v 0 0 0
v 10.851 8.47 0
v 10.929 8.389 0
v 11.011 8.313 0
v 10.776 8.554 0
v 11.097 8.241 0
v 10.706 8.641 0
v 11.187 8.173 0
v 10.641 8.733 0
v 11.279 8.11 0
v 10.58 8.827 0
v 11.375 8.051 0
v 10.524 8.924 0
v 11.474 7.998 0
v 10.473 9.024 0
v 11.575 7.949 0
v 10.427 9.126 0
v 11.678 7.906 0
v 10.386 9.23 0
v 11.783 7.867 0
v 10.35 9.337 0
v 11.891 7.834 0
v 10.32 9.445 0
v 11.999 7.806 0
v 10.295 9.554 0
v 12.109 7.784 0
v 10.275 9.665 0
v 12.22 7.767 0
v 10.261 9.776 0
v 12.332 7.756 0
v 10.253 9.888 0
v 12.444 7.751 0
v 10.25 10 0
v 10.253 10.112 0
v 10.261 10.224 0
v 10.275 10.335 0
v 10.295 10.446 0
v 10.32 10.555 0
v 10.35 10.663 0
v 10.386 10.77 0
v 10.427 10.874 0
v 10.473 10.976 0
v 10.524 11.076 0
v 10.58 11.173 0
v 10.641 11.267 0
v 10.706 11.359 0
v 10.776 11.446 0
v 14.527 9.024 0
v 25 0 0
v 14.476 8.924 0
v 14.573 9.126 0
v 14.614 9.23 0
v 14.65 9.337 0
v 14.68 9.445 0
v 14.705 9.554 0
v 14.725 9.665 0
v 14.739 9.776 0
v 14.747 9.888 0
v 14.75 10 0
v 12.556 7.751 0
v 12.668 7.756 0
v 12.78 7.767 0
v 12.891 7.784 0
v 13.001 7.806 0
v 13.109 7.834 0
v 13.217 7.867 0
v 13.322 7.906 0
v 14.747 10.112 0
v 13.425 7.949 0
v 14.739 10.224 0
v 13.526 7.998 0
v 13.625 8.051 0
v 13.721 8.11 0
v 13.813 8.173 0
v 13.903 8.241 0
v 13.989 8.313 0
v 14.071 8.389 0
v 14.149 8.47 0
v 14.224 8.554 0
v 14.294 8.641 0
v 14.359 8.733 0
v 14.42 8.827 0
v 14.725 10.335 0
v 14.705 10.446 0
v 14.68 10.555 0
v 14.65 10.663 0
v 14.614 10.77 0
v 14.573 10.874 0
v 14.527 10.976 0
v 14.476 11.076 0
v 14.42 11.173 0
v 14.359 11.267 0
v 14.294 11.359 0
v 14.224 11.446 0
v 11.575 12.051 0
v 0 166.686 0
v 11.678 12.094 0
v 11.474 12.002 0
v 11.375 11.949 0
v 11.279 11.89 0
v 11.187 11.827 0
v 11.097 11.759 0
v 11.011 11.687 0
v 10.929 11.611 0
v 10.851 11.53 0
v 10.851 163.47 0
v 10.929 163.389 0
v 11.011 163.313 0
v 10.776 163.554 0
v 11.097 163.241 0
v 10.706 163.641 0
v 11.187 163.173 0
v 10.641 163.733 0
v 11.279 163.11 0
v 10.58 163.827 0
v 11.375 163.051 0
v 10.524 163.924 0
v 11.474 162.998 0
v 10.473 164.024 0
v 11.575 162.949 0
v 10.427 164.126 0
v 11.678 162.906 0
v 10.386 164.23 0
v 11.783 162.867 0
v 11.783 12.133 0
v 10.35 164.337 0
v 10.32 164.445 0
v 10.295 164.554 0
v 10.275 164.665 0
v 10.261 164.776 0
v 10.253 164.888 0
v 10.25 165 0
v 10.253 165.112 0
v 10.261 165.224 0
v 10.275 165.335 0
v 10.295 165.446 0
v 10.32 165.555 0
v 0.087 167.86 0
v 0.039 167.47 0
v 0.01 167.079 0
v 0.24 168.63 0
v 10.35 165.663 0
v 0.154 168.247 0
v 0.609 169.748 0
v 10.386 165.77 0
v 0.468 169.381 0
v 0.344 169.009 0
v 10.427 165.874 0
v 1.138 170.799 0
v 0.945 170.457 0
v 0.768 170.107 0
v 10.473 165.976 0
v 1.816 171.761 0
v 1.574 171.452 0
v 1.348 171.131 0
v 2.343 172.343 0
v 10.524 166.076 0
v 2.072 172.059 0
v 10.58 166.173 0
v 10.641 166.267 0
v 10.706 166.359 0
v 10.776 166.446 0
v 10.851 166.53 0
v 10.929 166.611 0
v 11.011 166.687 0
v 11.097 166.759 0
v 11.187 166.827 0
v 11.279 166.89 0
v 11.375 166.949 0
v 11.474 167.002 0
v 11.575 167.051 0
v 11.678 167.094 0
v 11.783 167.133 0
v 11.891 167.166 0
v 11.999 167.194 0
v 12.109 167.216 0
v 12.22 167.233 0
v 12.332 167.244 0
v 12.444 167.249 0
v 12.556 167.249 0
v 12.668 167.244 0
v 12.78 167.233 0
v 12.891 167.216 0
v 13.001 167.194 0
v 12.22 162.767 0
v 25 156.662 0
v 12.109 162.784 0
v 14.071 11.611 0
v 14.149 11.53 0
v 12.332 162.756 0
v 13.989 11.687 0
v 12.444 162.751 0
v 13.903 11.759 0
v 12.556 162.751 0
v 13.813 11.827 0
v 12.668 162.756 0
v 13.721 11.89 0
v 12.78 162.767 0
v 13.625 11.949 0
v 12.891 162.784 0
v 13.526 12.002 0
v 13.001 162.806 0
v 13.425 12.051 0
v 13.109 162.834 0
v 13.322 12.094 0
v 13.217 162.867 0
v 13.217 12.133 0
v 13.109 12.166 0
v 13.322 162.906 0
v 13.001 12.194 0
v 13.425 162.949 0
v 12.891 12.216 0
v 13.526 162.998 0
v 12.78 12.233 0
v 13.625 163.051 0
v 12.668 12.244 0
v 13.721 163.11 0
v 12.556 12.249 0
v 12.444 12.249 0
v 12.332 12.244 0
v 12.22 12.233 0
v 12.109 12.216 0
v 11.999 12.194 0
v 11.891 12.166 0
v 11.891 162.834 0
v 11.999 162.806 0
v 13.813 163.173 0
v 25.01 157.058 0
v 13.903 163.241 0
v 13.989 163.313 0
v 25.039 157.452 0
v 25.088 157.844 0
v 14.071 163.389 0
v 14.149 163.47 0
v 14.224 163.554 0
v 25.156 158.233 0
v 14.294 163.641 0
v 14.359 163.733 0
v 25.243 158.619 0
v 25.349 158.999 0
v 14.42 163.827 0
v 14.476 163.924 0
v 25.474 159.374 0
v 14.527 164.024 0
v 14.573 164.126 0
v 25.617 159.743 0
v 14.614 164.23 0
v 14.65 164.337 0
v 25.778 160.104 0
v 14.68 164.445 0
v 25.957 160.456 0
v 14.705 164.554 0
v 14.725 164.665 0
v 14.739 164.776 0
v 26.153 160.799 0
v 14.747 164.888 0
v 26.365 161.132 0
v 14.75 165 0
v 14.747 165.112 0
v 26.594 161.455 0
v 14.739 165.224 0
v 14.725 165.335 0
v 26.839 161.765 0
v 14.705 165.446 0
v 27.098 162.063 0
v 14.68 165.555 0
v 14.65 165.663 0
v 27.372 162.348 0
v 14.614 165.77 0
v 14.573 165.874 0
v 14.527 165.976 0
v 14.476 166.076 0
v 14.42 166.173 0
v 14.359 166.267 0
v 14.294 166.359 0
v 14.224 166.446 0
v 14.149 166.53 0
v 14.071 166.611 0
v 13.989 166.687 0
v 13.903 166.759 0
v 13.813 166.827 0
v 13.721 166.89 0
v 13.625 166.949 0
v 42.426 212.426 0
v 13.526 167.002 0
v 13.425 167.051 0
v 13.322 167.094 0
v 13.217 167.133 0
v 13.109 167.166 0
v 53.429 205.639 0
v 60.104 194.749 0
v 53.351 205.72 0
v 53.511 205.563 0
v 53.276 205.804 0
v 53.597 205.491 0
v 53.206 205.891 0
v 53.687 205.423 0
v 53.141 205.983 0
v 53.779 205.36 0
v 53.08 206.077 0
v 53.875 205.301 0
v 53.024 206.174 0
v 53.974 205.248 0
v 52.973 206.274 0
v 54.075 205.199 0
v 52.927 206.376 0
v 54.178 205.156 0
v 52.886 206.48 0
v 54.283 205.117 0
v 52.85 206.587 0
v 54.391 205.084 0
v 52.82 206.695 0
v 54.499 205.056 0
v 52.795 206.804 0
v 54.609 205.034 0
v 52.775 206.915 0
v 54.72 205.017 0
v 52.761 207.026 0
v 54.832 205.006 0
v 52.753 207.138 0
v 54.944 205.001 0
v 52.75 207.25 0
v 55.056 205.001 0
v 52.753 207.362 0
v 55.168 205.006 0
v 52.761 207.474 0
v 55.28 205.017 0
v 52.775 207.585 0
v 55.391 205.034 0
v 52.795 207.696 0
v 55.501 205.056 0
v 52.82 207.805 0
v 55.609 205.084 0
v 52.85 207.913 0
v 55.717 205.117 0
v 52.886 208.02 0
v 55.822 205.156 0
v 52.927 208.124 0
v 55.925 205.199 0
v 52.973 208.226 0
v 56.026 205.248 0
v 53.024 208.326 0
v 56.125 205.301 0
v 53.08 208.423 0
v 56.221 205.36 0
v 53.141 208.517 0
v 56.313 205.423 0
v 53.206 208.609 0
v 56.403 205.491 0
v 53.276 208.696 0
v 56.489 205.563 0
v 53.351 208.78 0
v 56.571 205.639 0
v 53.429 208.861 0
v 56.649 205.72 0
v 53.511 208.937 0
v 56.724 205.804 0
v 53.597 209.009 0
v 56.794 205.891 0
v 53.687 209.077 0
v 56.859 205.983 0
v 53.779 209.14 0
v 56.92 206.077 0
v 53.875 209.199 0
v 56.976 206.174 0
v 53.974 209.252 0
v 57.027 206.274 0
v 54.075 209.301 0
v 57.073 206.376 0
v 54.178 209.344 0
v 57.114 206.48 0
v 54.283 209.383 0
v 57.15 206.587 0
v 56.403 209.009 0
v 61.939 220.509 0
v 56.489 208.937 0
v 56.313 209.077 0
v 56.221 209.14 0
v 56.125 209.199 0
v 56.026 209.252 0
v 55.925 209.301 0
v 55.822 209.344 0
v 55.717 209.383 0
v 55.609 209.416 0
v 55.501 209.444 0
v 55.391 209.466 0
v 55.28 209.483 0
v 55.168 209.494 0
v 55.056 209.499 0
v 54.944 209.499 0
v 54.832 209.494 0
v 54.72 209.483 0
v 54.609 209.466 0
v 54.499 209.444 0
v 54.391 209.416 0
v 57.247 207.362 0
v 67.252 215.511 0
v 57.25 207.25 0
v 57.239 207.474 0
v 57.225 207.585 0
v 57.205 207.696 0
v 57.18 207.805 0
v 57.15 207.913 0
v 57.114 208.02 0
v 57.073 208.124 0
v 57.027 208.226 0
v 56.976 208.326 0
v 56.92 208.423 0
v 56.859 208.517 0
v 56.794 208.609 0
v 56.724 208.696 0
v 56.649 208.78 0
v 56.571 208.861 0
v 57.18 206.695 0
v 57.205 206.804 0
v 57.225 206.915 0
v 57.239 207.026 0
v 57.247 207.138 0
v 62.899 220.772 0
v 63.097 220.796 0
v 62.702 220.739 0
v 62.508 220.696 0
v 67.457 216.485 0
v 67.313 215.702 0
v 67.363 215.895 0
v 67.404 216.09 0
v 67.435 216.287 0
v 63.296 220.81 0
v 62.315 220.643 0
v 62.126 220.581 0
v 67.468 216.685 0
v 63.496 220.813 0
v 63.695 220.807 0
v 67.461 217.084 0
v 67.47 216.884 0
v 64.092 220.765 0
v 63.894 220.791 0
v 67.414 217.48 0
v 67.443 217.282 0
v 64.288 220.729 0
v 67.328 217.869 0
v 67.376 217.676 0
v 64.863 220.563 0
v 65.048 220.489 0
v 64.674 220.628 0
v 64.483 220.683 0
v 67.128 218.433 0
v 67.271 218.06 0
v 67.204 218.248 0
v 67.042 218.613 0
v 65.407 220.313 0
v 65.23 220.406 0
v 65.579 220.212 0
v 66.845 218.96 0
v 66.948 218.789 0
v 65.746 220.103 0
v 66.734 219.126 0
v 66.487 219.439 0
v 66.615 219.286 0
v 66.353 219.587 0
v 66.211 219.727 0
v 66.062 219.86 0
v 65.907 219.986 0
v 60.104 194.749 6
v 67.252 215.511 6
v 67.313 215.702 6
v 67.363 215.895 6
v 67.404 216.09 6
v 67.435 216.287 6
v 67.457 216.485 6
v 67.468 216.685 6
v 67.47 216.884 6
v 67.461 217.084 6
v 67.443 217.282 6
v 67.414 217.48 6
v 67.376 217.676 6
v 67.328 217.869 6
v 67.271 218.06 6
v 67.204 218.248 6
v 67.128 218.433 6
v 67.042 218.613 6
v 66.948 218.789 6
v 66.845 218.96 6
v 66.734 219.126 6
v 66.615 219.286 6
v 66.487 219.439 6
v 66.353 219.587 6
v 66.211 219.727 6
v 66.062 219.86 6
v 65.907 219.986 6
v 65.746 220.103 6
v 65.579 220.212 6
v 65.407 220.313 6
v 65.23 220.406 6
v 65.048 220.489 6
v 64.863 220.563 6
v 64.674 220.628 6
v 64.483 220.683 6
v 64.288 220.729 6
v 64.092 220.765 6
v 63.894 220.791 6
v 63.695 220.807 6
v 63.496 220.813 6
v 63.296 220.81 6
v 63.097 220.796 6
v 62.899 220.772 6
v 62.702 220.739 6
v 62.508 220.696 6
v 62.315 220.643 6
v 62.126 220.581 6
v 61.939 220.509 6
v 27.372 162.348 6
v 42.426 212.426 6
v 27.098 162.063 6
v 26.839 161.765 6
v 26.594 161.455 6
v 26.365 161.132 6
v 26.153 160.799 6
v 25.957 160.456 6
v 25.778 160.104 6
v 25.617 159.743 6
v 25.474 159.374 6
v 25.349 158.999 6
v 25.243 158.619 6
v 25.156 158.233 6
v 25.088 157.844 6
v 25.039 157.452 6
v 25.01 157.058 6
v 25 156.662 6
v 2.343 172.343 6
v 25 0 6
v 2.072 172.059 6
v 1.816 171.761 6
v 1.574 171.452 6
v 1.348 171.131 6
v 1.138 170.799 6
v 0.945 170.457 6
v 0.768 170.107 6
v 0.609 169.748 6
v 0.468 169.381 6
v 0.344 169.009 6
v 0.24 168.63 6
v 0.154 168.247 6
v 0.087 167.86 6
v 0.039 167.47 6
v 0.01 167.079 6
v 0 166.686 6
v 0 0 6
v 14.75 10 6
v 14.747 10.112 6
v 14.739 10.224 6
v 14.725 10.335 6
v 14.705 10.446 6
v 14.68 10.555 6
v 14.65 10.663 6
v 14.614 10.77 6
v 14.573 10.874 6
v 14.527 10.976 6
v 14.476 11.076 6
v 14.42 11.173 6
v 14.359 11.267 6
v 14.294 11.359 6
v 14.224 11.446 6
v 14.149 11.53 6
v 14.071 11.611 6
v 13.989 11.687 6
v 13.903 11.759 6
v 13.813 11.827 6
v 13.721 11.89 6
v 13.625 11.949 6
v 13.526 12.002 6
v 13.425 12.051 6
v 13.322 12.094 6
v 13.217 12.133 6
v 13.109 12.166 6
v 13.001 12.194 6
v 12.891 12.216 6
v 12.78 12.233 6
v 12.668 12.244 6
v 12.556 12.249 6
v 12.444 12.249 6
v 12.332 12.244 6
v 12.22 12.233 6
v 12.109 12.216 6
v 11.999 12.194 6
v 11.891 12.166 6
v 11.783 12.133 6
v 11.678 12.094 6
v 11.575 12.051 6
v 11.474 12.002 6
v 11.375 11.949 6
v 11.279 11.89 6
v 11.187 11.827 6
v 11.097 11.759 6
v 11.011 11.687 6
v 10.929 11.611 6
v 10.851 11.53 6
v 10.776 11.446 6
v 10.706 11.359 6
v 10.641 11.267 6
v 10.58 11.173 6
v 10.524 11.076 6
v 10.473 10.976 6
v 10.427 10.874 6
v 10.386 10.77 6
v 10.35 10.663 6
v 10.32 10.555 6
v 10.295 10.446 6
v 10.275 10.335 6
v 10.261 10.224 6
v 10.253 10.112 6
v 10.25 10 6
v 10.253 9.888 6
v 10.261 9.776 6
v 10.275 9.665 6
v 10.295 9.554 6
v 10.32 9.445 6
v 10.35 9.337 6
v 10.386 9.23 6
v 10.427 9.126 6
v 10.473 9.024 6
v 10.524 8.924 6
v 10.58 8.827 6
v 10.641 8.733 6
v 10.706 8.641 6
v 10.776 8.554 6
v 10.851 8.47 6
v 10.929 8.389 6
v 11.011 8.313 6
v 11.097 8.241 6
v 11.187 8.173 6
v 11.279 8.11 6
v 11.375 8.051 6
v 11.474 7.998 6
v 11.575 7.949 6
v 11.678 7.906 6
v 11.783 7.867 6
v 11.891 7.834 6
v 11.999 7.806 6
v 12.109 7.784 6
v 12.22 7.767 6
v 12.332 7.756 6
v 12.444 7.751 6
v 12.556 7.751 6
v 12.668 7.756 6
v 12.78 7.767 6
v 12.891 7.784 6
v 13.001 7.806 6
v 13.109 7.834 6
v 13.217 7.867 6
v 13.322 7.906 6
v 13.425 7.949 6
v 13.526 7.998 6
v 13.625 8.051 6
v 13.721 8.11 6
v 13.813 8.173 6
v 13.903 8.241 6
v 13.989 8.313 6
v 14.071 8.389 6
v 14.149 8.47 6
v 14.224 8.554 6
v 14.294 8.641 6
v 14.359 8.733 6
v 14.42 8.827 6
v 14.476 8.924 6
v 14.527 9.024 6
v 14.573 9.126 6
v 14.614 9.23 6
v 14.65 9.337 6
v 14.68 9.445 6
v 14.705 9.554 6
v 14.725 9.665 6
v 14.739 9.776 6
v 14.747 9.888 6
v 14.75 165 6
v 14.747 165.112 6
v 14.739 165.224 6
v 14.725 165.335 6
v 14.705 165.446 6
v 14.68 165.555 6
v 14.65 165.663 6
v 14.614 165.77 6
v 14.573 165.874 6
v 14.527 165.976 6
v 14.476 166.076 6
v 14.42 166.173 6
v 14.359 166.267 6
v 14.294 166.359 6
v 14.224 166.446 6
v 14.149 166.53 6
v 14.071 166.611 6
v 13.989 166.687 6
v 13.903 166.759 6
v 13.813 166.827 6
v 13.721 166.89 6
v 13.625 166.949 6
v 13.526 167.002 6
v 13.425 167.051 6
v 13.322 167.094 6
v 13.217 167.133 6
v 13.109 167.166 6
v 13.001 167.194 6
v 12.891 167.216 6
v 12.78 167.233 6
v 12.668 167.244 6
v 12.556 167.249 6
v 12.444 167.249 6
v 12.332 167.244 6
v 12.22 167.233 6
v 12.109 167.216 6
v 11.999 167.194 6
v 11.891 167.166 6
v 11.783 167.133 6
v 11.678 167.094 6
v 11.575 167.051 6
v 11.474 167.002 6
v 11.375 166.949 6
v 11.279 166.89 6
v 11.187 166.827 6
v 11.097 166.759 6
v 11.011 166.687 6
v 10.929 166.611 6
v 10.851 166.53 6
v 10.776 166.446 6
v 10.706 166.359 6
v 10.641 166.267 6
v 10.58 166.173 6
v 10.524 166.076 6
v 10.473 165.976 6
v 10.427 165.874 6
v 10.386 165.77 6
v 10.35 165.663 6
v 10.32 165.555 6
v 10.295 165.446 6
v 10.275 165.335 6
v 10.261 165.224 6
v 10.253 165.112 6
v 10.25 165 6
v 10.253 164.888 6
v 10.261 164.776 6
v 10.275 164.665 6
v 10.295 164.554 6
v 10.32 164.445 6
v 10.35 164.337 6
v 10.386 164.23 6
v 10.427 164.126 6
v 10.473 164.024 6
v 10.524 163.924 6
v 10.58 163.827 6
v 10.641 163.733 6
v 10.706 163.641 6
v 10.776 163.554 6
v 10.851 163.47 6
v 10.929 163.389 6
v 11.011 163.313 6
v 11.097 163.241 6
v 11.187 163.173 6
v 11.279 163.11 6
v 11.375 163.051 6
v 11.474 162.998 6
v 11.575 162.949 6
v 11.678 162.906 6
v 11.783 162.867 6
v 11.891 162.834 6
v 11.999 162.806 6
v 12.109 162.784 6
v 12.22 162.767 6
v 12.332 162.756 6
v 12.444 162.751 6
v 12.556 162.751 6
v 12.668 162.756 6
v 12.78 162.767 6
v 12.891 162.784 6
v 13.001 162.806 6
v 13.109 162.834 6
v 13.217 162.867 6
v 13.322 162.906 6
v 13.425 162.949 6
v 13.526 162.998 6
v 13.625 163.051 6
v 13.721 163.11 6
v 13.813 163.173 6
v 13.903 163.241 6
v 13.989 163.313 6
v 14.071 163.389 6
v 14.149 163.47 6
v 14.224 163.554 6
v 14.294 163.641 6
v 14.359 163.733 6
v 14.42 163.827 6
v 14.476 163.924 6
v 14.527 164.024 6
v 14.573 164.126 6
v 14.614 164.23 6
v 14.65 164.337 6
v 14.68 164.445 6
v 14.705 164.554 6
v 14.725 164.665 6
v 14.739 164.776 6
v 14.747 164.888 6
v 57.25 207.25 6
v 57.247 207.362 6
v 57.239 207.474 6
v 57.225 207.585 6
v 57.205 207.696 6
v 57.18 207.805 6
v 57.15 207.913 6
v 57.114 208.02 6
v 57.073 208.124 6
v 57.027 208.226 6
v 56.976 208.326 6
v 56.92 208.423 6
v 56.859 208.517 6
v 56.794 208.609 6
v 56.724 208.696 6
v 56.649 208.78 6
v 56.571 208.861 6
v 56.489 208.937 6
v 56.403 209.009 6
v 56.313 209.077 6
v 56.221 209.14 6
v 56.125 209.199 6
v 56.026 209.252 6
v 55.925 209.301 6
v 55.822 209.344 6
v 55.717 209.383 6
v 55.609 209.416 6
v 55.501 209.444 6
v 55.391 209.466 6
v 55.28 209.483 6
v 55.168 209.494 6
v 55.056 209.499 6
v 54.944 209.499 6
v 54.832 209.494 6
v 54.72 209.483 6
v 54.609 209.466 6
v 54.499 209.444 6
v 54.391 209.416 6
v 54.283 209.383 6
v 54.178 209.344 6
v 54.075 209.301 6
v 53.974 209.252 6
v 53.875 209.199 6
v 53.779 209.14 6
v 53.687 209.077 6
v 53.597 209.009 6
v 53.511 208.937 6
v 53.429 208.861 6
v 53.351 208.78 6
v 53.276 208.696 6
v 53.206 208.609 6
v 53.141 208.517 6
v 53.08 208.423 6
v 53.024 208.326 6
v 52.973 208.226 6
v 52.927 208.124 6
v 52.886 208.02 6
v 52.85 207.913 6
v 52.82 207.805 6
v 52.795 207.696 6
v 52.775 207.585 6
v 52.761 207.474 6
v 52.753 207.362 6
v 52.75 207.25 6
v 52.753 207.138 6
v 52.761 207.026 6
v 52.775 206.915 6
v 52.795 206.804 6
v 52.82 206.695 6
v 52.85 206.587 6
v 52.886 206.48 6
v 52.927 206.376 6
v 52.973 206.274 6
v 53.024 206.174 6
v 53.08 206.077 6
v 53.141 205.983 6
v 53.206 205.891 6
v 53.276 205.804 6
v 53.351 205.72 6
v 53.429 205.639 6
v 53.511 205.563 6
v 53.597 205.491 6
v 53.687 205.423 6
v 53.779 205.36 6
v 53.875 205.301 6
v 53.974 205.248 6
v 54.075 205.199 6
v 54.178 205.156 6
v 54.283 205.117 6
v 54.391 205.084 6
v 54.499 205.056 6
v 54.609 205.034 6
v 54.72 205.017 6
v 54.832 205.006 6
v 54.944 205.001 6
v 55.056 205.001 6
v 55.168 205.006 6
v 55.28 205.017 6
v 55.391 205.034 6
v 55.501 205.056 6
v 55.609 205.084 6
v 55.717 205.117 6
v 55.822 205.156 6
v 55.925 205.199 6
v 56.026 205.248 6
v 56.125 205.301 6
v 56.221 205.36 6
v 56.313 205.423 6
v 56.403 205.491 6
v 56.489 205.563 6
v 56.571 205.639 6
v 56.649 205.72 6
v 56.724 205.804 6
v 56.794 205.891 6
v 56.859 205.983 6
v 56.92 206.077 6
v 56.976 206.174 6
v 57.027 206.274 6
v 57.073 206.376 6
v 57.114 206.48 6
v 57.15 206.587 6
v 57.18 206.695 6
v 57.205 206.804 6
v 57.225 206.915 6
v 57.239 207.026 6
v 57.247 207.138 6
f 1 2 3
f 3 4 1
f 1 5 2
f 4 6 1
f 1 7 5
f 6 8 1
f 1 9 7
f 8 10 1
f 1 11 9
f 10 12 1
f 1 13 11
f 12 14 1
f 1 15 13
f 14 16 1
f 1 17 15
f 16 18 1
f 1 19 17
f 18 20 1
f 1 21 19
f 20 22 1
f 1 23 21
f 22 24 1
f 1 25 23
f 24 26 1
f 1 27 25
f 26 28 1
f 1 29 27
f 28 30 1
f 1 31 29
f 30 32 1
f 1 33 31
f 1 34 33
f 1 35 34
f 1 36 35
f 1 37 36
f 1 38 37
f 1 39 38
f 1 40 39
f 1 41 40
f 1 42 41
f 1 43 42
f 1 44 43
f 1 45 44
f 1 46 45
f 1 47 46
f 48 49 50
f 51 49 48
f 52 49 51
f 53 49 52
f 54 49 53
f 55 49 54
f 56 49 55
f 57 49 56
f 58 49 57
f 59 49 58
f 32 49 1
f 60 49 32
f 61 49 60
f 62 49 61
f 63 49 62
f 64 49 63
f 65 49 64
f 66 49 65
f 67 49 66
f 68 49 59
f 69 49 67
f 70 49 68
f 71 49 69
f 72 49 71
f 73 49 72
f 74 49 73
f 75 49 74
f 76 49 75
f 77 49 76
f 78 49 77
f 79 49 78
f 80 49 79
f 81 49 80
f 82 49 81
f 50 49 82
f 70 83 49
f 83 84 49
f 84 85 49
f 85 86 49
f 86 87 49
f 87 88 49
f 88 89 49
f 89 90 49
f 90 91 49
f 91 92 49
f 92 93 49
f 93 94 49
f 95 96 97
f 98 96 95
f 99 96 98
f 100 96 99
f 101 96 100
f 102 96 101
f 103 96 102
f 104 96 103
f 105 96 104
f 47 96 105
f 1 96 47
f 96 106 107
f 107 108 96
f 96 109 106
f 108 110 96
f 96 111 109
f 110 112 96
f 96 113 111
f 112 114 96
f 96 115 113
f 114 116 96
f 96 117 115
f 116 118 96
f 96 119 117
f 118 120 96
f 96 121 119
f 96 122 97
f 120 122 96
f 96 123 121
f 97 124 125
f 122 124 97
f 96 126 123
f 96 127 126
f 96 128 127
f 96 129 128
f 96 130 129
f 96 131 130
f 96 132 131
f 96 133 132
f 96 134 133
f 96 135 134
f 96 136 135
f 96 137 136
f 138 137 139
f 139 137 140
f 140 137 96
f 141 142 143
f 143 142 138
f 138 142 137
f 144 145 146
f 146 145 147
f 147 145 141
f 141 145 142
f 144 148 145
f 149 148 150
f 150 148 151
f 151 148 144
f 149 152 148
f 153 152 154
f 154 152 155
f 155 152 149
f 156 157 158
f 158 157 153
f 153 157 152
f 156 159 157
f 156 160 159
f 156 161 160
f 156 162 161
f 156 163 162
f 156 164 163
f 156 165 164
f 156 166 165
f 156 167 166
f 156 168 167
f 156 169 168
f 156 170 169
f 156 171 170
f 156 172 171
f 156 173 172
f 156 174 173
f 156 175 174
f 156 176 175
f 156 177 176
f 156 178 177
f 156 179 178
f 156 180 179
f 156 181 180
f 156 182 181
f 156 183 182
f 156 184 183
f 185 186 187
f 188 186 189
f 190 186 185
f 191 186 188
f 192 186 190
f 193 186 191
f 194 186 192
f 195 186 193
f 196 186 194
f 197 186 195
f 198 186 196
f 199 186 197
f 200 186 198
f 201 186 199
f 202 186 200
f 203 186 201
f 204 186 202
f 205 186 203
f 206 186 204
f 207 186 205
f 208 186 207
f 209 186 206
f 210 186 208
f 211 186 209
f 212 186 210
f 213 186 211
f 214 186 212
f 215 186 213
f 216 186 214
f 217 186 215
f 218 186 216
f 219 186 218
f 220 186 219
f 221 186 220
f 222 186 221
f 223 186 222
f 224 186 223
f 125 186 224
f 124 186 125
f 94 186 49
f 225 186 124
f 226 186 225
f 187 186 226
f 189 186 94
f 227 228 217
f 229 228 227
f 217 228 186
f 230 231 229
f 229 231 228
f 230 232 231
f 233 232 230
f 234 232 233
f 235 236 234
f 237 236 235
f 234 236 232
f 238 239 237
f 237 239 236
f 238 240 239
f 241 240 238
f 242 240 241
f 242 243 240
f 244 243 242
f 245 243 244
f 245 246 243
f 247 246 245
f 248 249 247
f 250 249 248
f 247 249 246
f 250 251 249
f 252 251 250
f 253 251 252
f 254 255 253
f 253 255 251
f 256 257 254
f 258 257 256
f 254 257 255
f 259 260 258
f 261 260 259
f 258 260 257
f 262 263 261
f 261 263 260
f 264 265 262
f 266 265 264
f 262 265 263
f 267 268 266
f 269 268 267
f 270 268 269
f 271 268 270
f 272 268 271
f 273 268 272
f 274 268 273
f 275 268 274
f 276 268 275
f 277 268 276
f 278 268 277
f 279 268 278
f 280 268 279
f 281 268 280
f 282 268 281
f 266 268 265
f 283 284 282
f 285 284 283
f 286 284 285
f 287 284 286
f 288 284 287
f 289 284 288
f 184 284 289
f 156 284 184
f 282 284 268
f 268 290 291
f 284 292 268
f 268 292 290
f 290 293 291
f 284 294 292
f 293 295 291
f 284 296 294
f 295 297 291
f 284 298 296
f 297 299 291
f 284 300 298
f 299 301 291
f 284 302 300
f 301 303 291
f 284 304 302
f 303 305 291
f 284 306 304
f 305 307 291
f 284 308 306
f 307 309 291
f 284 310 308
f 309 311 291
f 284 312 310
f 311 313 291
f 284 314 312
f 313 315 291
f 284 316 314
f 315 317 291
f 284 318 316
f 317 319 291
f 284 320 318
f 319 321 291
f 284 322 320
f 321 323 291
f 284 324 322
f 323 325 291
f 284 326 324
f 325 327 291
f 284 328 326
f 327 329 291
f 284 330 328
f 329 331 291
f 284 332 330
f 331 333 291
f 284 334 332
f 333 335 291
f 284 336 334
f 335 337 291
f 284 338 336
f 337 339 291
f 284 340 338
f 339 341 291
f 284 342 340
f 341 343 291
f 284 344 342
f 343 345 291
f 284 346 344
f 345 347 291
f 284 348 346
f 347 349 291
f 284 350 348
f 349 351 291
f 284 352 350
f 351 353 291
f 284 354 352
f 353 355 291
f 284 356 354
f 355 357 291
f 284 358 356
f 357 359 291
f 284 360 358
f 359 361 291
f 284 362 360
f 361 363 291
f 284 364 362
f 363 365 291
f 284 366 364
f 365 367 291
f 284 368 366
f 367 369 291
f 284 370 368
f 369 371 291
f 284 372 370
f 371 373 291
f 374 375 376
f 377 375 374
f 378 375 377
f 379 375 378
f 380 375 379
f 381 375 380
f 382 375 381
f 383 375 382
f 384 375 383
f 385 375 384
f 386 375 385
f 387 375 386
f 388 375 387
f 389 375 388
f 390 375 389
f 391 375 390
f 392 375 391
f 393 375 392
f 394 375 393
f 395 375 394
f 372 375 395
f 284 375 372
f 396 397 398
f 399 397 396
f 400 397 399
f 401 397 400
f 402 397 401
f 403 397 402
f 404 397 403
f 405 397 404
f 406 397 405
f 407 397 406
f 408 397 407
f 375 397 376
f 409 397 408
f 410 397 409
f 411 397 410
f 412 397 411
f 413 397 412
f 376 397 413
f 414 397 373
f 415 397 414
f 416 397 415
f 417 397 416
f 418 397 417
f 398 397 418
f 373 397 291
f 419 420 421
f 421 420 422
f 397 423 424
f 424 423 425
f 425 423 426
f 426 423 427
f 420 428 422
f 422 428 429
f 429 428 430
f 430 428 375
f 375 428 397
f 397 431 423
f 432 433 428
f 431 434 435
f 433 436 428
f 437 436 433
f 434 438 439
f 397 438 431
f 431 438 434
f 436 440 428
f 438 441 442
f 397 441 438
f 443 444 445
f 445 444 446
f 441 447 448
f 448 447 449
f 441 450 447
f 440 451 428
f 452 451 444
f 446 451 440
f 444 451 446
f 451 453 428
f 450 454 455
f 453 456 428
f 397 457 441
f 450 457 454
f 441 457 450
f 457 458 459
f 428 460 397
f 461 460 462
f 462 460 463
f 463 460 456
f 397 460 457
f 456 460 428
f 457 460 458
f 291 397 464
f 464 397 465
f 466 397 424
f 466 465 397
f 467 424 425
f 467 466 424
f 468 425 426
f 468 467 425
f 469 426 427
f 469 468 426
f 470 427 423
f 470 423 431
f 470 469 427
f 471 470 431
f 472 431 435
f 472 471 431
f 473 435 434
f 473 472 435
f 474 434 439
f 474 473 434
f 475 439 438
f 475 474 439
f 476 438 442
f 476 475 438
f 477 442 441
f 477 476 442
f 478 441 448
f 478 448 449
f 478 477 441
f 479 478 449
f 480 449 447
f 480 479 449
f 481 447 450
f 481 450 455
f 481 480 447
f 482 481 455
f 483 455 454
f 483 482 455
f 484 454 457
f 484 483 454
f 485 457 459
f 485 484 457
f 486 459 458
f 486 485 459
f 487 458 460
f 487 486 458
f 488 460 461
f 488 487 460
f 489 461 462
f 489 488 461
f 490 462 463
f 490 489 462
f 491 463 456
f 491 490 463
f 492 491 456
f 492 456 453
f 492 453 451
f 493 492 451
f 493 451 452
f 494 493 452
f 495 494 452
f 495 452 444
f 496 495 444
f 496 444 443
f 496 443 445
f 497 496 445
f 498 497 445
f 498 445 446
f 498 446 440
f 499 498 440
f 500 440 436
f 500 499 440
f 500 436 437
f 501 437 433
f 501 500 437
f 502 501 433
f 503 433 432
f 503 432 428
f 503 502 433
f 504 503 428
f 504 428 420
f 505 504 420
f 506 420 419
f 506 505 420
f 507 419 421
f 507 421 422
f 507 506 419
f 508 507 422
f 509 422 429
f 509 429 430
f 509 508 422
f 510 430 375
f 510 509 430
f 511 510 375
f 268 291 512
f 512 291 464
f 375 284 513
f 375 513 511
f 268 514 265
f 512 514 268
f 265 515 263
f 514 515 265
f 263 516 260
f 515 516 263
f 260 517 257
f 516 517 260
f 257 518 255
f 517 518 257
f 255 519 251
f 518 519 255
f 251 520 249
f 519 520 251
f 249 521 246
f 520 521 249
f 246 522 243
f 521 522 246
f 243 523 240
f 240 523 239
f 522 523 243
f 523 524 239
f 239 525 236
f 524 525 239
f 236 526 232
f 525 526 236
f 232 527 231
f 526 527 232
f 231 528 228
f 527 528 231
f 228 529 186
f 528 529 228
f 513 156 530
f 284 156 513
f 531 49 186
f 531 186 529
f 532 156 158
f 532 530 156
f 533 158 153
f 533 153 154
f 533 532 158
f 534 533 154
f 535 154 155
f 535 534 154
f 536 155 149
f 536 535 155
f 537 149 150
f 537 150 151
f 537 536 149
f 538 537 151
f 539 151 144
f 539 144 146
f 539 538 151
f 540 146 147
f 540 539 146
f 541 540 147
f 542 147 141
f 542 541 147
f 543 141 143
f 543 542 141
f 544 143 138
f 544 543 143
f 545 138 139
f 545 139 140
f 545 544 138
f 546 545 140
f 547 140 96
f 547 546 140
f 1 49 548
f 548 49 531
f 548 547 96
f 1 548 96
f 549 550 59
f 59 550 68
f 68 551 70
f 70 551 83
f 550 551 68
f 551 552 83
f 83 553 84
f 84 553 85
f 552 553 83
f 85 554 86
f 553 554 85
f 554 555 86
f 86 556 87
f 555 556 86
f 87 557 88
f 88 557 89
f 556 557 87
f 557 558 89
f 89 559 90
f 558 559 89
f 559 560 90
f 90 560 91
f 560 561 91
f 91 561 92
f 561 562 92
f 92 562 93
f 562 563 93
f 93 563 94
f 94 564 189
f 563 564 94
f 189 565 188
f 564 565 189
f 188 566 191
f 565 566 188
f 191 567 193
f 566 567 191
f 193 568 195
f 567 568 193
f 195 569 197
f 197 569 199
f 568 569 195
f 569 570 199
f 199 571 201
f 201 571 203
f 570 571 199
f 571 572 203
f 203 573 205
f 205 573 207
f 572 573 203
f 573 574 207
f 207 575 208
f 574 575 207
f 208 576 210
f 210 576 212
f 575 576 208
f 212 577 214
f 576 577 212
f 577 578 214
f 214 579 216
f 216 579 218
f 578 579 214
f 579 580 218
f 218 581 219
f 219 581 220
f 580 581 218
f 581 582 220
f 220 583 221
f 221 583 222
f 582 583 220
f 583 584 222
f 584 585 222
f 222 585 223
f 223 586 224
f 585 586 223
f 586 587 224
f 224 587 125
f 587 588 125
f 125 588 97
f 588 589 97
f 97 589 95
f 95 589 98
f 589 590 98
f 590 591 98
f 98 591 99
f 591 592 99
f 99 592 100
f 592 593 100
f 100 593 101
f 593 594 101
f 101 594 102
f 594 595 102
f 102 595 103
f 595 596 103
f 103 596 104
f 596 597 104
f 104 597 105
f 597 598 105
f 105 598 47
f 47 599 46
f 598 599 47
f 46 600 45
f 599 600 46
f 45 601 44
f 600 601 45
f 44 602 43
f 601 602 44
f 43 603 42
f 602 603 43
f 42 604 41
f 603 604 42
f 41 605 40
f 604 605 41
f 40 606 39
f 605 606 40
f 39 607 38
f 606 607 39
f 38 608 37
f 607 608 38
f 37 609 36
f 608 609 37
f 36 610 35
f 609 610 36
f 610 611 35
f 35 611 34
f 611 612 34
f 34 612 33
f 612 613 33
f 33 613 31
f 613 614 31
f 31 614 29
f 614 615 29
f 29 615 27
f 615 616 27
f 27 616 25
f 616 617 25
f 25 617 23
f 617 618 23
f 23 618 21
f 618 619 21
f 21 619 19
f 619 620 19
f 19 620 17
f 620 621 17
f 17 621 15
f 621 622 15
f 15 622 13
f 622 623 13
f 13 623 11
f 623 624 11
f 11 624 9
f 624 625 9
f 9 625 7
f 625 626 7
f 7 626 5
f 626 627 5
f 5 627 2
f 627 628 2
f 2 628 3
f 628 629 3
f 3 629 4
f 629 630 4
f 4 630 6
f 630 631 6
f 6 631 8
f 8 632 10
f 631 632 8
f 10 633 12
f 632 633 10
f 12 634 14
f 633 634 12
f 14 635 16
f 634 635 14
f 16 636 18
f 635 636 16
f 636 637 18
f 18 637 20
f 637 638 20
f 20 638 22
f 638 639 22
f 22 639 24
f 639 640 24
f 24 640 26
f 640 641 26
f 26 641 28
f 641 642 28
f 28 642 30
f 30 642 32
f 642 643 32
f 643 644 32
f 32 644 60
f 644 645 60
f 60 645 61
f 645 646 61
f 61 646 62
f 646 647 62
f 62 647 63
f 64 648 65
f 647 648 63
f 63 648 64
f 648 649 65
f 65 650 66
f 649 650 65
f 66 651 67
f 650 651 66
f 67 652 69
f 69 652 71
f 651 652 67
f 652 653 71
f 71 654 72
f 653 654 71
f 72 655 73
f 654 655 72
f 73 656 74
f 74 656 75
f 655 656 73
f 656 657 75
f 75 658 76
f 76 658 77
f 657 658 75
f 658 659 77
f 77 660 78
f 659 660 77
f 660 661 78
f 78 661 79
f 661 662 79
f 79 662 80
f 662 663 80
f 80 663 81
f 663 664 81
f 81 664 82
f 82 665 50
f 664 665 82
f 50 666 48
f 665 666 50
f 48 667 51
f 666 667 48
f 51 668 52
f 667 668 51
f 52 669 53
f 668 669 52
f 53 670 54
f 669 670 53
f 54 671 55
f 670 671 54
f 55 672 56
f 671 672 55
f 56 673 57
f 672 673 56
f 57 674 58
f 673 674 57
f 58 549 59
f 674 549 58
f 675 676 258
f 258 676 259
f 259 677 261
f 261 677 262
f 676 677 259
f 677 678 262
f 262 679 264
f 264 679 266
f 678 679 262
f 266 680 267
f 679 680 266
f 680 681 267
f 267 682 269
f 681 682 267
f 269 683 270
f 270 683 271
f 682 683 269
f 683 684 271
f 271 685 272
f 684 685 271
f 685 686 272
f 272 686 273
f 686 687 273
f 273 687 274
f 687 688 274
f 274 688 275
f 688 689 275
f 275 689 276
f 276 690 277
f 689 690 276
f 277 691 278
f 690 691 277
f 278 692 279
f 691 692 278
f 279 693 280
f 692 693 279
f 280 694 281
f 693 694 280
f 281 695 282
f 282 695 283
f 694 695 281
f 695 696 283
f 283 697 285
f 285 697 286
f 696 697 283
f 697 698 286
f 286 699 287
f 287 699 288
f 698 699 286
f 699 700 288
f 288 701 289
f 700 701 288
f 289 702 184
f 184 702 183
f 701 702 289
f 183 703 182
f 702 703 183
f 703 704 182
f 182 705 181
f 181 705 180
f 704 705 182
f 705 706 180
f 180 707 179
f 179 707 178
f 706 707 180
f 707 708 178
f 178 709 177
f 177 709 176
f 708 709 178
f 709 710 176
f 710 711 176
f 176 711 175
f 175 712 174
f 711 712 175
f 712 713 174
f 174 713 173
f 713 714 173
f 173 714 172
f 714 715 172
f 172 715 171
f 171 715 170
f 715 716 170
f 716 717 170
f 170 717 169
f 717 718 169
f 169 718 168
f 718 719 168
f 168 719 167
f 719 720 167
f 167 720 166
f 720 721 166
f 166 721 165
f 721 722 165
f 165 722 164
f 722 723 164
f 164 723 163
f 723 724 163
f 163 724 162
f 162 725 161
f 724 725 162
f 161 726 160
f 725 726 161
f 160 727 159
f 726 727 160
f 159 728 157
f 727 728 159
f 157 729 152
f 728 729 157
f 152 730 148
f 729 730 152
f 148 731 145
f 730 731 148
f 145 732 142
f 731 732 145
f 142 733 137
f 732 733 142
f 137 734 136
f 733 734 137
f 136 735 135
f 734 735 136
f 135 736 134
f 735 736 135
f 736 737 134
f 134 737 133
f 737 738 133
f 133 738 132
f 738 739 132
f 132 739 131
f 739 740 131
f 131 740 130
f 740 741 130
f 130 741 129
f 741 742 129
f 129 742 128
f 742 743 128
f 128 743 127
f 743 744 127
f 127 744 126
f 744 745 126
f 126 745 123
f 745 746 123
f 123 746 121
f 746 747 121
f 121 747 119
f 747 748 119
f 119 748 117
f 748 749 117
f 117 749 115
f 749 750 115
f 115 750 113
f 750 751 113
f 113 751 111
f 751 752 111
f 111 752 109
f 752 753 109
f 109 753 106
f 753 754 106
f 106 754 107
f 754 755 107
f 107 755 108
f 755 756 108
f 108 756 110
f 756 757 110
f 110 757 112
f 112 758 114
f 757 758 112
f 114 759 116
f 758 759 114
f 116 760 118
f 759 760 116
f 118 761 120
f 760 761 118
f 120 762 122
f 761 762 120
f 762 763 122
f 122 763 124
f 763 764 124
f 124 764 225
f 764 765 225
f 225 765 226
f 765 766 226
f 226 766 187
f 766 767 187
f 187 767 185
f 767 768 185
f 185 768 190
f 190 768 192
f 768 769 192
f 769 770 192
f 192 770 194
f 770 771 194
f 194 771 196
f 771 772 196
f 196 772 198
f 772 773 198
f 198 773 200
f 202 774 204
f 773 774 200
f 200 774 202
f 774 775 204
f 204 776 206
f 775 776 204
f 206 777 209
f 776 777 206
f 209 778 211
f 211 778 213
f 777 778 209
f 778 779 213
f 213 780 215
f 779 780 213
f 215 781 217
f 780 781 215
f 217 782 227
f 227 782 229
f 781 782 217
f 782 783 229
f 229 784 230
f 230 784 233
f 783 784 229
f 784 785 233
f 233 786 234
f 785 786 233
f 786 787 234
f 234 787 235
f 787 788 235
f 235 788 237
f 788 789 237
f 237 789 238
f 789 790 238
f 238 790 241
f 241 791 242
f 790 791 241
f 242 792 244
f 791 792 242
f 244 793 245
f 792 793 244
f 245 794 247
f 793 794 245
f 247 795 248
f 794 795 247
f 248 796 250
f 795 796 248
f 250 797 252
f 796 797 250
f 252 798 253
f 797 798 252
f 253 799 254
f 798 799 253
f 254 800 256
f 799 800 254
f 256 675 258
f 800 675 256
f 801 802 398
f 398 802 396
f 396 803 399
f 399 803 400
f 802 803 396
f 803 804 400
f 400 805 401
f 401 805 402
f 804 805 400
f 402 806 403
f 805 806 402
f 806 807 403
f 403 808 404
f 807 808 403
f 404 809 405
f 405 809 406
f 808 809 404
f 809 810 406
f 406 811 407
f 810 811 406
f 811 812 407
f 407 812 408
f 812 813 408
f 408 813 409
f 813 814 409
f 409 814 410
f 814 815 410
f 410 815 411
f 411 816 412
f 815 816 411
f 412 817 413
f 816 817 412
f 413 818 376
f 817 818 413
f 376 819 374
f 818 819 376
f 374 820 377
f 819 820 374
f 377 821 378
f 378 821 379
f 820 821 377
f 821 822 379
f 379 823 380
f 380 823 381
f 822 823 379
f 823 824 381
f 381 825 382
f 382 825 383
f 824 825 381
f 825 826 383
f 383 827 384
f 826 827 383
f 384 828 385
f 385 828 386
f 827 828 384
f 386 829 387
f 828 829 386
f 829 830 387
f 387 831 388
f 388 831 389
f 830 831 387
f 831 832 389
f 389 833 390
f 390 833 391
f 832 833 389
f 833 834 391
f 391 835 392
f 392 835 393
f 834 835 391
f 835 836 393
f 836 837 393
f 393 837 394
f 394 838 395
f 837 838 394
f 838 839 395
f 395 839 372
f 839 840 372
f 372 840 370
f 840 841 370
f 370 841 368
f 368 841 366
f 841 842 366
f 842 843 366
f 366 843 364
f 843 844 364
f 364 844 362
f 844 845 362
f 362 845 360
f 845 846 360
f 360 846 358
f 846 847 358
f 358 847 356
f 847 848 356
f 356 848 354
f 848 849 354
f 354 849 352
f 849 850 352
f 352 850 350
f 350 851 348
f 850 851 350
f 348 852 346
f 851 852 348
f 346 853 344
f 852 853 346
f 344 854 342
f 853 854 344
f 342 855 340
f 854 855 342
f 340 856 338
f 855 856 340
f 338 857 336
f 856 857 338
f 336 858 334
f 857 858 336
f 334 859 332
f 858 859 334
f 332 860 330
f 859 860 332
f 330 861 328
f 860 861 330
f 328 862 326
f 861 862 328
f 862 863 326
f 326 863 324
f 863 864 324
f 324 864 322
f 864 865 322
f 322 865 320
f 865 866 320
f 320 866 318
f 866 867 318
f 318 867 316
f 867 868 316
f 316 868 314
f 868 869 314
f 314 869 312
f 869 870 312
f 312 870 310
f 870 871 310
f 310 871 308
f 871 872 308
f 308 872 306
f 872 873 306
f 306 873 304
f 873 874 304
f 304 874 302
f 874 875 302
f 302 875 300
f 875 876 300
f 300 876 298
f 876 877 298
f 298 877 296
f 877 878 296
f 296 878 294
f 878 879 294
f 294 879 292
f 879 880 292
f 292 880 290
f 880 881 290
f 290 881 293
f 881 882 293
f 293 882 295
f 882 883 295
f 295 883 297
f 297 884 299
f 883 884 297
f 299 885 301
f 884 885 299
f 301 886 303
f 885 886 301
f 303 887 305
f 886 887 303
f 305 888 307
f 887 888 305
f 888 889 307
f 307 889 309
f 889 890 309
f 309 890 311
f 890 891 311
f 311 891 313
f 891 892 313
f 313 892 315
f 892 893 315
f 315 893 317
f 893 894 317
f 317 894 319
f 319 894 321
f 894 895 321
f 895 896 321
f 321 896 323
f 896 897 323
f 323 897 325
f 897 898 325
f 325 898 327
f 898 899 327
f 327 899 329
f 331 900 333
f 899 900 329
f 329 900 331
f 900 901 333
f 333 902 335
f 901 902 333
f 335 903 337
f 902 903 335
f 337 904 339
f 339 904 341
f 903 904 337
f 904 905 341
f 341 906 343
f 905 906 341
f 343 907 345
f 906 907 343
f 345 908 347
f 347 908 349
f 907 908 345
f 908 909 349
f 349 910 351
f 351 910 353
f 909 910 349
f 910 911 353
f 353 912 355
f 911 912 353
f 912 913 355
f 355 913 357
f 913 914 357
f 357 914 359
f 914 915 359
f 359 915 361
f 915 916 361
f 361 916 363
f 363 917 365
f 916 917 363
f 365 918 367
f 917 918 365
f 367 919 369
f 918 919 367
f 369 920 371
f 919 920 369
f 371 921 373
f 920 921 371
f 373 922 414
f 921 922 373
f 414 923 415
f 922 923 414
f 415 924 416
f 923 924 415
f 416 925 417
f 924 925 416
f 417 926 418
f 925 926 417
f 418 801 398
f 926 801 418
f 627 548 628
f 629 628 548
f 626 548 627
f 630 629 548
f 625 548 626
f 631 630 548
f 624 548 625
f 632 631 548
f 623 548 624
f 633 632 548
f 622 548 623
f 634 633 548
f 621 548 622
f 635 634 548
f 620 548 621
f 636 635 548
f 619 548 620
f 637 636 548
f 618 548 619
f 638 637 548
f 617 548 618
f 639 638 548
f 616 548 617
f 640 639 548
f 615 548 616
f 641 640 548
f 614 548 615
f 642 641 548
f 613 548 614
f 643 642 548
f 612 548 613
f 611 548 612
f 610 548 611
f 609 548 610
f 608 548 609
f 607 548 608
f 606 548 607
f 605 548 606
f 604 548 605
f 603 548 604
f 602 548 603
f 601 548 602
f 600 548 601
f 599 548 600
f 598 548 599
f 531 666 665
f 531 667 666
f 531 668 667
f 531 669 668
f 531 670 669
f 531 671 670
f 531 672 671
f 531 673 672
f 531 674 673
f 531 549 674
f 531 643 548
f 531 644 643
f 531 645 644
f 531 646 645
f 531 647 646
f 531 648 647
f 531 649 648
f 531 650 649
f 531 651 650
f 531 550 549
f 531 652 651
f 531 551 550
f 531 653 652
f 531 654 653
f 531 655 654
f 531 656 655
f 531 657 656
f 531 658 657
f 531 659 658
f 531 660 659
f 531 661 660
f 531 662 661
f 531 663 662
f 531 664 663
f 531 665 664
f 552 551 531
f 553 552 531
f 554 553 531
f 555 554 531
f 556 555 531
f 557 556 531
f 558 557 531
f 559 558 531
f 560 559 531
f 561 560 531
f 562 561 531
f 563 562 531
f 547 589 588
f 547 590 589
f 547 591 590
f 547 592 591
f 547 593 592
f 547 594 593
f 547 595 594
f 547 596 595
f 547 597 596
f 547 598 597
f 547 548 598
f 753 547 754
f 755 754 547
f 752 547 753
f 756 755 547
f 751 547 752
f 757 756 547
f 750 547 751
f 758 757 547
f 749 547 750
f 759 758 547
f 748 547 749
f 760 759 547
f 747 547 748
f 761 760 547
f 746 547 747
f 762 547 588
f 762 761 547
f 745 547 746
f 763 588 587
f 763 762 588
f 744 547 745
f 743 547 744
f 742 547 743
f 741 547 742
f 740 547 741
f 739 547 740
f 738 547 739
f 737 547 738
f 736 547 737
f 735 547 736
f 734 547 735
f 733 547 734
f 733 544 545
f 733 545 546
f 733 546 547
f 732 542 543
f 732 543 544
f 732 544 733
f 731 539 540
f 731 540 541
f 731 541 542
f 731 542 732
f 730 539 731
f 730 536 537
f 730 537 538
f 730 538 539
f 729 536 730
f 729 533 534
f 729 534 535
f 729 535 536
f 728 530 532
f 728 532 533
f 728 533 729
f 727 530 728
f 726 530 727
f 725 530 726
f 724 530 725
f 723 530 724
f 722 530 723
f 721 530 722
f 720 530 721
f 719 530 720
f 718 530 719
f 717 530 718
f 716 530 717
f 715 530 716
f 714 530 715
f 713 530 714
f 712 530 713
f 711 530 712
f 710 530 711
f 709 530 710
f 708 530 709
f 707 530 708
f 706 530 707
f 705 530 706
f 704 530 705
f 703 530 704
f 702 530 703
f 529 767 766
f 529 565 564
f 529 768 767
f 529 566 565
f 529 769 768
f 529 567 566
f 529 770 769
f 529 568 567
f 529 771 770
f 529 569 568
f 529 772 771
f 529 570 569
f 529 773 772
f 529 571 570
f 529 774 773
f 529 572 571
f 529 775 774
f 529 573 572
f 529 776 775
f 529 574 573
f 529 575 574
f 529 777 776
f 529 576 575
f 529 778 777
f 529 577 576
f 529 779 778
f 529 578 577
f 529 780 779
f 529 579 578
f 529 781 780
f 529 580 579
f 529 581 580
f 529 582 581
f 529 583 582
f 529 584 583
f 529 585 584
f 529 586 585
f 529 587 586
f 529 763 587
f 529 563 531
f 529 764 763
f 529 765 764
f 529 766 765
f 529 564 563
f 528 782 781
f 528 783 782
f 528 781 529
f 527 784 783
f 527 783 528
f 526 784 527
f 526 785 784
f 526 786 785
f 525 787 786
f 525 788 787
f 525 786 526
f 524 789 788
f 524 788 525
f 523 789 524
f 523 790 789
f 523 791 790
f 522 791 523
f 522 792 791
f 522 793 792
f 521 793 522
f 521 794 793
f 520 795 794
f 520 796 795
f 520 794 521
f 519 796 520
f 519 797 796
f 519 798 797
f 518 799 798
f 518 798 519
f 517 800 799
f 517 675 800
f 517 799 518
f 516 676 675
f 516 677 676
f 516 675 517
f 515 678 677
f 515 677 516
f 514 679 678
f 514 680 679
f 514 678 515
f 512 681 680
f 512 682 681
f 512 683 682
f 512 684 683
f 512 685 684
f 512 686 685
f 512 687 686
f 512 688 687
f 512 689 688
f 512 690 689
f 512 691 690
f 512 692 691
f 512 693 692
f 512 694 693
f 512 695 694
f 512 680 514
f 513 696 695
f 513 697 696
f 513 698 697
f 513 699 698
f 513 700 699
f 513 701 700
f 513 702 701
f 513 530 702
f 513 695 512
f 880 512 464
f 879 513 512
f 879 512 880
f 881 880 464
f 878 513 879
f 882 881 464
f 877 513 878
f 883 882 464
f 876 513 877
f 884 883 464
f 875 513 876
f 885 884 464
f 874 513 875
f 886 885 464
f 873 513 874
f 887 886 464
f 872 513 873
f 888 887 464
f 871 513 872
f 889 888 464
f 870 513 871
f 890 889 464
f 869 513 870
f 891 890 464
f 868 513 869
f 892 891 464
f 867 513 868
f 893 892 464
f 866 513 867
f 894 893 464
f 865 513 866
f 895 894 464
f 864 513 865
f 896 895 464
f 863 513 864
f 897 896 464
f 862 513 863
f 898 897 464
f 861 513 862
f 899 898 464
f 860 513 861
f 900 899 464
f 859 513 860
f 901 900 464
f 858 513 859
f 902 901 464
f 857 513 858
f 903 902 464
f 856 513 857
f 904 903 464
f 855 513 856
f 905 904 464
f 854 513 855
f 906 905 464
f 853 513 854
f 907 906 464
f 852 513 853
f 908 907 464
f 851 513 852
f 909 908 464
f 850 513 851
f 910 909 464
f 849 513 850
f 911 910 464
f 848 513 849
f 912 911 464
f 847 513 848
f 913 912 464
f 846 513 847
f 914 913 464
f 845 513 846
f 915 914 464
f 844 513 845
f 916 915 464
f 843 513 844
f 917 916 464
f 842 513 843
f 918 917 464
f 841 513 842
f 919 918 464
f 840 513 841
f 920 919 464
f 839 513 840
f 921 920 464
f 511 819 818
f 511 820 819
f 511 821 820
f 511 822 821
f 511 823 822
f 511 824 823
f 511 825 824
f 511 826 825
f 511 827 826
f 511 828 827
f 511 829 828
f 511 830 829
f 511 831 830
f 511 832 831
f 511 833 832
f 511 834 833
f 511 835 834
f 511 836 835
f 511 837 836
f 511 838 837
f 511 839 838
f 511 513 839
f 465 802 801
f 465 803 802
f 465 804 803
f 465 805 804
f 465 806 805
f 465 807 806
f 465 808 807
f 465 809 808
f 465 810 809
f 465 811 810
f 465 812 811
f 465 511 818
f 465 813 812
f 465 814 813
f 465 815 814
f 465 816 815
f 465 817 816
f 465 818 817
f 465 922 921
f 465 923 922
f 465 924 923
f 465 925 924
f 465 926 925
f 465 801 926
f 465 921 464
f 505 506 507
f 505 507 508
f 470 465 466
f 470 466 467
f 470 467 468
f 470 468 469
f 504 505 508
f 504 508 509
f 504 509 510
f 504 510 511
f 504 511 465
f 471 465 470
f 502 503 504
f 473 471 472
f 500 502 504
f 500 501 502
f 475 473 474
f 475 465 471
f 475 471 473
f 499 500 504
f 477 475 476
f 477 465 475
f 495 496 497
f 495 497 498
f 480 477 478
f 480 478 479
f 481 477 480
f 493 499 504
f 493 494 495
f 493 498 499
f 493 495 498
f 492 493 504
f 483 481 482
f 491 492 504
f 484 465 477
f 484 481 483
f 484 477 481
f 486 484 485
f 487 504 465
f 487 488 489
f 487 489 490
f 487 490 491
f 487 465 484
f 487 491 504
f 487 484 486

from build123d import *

# Parameters (mm, degrees)
PAD_DEPTH    = 6
FILLET_R     = 8
FILLET001_R  = 8
FILLET002_R  = 4
SKETCH001_R  = 2.25
POCKET_DEPTH = 6


with BuildPart() as part:
    # Sketch → Pad (new body)
    with BuildSketch(Plane.XY):
        Polygon((0, 0), (25, 0), (25, 150), (25, 160), (60.104086, 194.748733), (70.142801, 223.906901), (42.426414, 212.4264), (0, 170), (0, 150), align=None)
    extrude(amount=PAD_DEPTH)

    # Fillet
    fillet_edges = [part.edges().sort_by_distance(p)[0] for p in [
        (0, 170, 3),
    ]]
    fillet(fillet_edges, radius=FILLET_R)

    # Fillet001
    fillet001_edges = [part.edges().sort_by_distance(p)[0] for p in [
        (25, 160, 3),
    ]]
    fillet(fillet001_edges, radius=FILLET001_R)

    # Fillet002
    fillet002_edges = [part.edges().sort_by_distance(p)[0] for p in [
        (70.142801, 223.906901, 3),
    ]]
    fillet(fillet002_edges, radius=FILLET002_R)

    # Sketch001 (on Face12 of Fillet002) → Pocket (cut)
    with BuildSketch(Plane.XY.offset(6)):
        with Locations((12.5, 165)):
            Circle(SKETCH001_R)
        with Locations((55, 207.25)):
            Circle(SKETCH001_R)
        with Locations((12.5, 10)):
            Circle(SKETCH001_R)
    extrude(amount=-POCKET_DEPTH, mode=Mode.SUBTRACT)


solid = part.part
